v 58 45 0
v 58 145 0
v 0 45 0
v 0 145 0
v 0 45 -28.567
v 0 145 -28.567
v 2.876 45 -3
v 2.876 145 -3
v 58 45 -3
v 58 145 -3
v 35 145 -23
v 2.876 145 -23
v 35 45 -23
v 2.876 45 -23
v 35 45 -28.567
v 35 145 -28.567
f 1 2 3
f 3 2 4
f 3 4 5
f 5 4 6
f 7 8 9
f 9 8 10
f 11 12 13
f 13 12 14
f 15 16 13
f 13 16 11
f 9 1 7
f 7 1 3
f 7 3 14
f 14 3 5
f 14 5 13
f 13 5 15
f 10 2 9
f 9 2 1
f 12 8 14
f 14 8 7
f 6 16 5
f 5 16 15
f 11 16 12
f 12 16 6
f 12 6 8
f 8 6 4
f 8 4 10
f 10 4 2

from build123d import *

# Parameters (mm, degrees)
SKETCH2_W           = 106
SKETCH2_H           = 106
SKETCH2_R           = 4
SKETCH2_R_2         = 6
BOSS_EXTRUDE1_DEPTH = 25
SKETCH3_W           = 106
SKETCH3_H           = 106
SKETCH3_W_2         = 100
SKETCH3_H_2         = 100
BOSS_EXTRUDE2_DEPTH = 20
SKETCH5_W           = 3
SKETCH5_H           = 23
BOSS_EXTRUDE3_DEPTH = 20
SKETCH7_W           = 20
SKETCH7_H           = 3
BOSS_EXTRUDE4_DEPTH = 20
SKETCH9_R           = 9.905763918
CUT_EXTRUDE1_DEPTH  = 10
SKETCH10_W          = 10
SKETCH10_H          = 4
BOSS_EXTRUDE5_DEPTH = 10
SKETCH11_W          = 10
SKETCH11_H          = 4
BOSS_EXTRUDE6_DEPTH = 10
FILLET2_RADIUS      = 5
FILLET2_LENGTH      = 4
FILLET3_R           = 5
FILLET4_R           = 5
FILLET5_R           = 5
SKETCH13_R          = 1.6
CUT_EXTRUDE2_DEPTH  = 163.397660082
SKETCH14_W          = 35.96051594
SKETCH14_H          = 7.693498276
CUT_EXTRUDE3_DEPTH  = 30
BOSS_EXTRUDE7_DEPTH = 100
SKETCH21_W          = 151.44967638
SKETCH21_H          = 134.741704964
CUT_EXTRUDE6_DEPTH  = 187.257885739


with BuildPart() as part:
    # Sketch2 → Boss-Extrude1 (new body)
    with BuildSketch(Plane(origin=(0, 0, 0), x_dir=(1, 0, 0), z_dir=(0, 1, 0))):
        with Locations((53, 53)):
            Rectangle(SKETCH2_W, SKETCH2_H)
        with Locations(Location((18, 15, 0), (0, 0, 270))):
            Circle(SKETCH2_R, mode=Mode.SUBTRACT)
        with Locations(Location((92, 13.5, 0), (0, 0, 270))):
            Circle(SKETCH2_R_2, mode=Mode.SUBTRACT)
    extrude(amount=BOSS_EXTRUDE1_DEPTH)

    # Sketch3 → Boss-Extrude2 (add)
    with BuildSketch(Plane(origin=(0, 25, 0), x_dir=(1, 0, 0), z_dir=(0, 1, 0))):
        with Locations((53, 53)):
            Rectangle(SKETCH3_W, SKETCH3_H)
        with Locations((53, 53)):
            Rectangle(SKETCH3_W_2, SKETCH3_H_2, mode=Mode.SUBTRACT)
    extrude(amount=BOSS_EXTRUDE2_DEPTH)

    # Sketch5 → Boss-Extrude3 (add)
    with BuildSketch(Plane(origin=(0, 25, 0), x_dir=(1, 0, 0), z_dir=(0, 1, 0))):
        Polygon((3, 28), (3, 25), (32, 25), (32, 23), (35, 23), (35, 43), (32, 43), (32, 28), align=None)
        Polygon((83, 52.5), (83, 26.5), (76, 26.5), (76, 3), (73, 3), (73, 29.5), (80, 29.5), (80, 49.5), (73, 49.5), (73, 52.5), align=None)
        Polygon((3, 63), (3, 60), (25, 60), (25, 80), (22, 80), (22, 63), align=None)
        with Locations((59.5, 14.5)):
            Rectangle(SKETCH5_W, SKETCH5_H)
    extrude(amount=BOSS_EXTRUDE3_DEPTH)

    # Sketch7 → Boss-Extrude4 (add)
    with BuildSketch(Plane(origin=(0, 25, 0), x_dir=(1, 0, 0), z_dir=(0, 1, 0))):
        Polygon((50, 70.496538655), (53, 70.496538655), (53, 73.496538655), (53, 83.496538655), (50, 83.496538655), align=None)
        with Locations((63, 71.996538655)):
            Rectangle(SKETCH7_W, SKETCH7_H)
        Polygon((73, 70.496538655), (73, 52.5), (76, 52.5), (76, 82.5), (73, 82.5), (73, 73.496538655), align=None)
    extrude(amount=BOSS_EXTRUDE4_DEPTH)

    # Sketch9 → Cut-Extrude1 (cut)
    with BuildSketch(Plane(origin=(0, 25, 0), x_dir=(1, 0, 0), z_dir=(0, 1, 0))):
        with Locations(Location((92, 13.5, 0), (0, 0, 270))):
            Circle(SKETCH9_R)
    extrude(amount=-CUT_EXTRUDE1_DEPTH, mode=Mode.SUBTRACT)

    # Sketch10 → Boss-Extrude5 (add)
    with BuildSketch(Plane.XY):
        with Locations((53, 2)):
            Rectangle(SKETCH10_W, SKETCH10_H)
    extrude(amount=BOSS_EXTRUDE5_DEPTH)

    # Sketch11 → Boss-Extrude6 (add)
    with BuildSketch(Plane(origin=(0, 0, -106), x_dir=(-1, 0, 0), z_dir=(0, 0, -1))):
        with Locations((-53, 2)):
            Rectangle(SKETCH11_W, SKETCH11_H)
    extrude(amount=BOSS_EXTRUDE6_DEPTH)

    # Fillet2: full round fillet: the end face becomes a half cylinder, R = half its width
    fillet2_face = Plane((53, 2, -116), x_dir=(0, -1, 0), z_dir=(0, 0, -1))  # on the end face: x along it, z out of the body
    fillet2_slab = fillet2_face.offset(-FILLET2_RADIUS / 2) * Box(FILLET2_LENGTH, 2 * FILLET2_RADIUS, FILLET2_RADIUS, mode=Mode.PRIVATE)  # the body's end, R deep
    fillet2_round = Plane((53, 2, -111), x_dir=(0, 0, -1), z_dir=(0, -1, 0)) * Cylinder(FILLET2_RADIUS, FILLET2_LENGTH, mode=Mode.PRIVATE)  # its axis R under the face
    add(fillet2_slab - fillet2_round, mode=Mode.SUBTRACT)

    # Fillet3
    fillet3_edges = [part.edges().sort_by_distance(p)[0] for p in [
        (48, 2, -106),
        (58, 2, -106),
    ]]
    fillet(fillet3_edges, radius=FILLET3_R - 0.0001)  # a hair under: the kernel refuses the full size

    # Fillet4
    fillet4_edges = [part.edges().sort_by_distance(p)[0] for p in [
        (48, 2, 0),
        (58, 2, 0),
    ]]
    fillet(fillet4_edges, radius=FILLET4_R)

    # Fillet5
    fillet5_edges = [part.edges().sort_by_distance(p)[0] for p in [
        (48, 2, 10),
        (58, 2, 10),
    ]]
    fillet(fillet5_edges, radius=FILLET5_R - 0.0001)  # a hair under: the kernel refuses the full size

    # Sketch13 → Cut-Extrude2 (cut, through all)
    with BuildSketch(Plane(origin=(0, 4, 0), x_dir=(1, 0, 0), z_dir=(0, 1, 0))):
        with Locations(Location((53, -5, 0), (0, 0, 180))):
            Circle(SKETCH13_R)
        with Locations(Location((53, 111, 0), (0, 0, 180))):
            Circle(SKETCH13_R)
    extrude(amount=-CUT_EXTRUDE2_DEPTH, mode=Mode.SUBTRACT)

    # Sketch14 → Cut-Extrude3 (cut)
    with BuildSketch(Plane.XY):
        with Locations((88.01974203, 3.846749138)):
            Rectangle(SKETCH14_W, SKETCH14_H)
    extrude(amount=-CUT_EXTRUDE3_DEPTH, mode=Mode.SUBTRACT)

    # Sketch15 → Boss-Extrude7 (add)
    with BuildSketch(Plane(origin=(0, 45, 0), x_dir=(1, 0, 0), z_dir=(0, 1, 0))):
        Polygon((0, 28.5668375), (0, 0), (2.876085753, 0), (58, 0), (58, 3), (2.876085753, 3), (2.876085753, 23), (35, 23), (35, 28.5668375), align=None)
    extrude(amount=BOSS_EXTRUDE7_DEPTH)

    # Sketch21 → Cut-Extrude6 (cut, through all)
    with BuildSketch(Plane(origin=(0, 45, 0), x_dir=(1, 0, 0), z_dir=(0, 1, 0))):
        with Locations((51.832238557, 52.101721967)):
            Rectangle(SKETCH21_W, SKETCH21_H)
    extrude(amount=-CUT_EXTRUDE6_DEPTH, mode=Mode.SUBTRACT)


solid = part.part
